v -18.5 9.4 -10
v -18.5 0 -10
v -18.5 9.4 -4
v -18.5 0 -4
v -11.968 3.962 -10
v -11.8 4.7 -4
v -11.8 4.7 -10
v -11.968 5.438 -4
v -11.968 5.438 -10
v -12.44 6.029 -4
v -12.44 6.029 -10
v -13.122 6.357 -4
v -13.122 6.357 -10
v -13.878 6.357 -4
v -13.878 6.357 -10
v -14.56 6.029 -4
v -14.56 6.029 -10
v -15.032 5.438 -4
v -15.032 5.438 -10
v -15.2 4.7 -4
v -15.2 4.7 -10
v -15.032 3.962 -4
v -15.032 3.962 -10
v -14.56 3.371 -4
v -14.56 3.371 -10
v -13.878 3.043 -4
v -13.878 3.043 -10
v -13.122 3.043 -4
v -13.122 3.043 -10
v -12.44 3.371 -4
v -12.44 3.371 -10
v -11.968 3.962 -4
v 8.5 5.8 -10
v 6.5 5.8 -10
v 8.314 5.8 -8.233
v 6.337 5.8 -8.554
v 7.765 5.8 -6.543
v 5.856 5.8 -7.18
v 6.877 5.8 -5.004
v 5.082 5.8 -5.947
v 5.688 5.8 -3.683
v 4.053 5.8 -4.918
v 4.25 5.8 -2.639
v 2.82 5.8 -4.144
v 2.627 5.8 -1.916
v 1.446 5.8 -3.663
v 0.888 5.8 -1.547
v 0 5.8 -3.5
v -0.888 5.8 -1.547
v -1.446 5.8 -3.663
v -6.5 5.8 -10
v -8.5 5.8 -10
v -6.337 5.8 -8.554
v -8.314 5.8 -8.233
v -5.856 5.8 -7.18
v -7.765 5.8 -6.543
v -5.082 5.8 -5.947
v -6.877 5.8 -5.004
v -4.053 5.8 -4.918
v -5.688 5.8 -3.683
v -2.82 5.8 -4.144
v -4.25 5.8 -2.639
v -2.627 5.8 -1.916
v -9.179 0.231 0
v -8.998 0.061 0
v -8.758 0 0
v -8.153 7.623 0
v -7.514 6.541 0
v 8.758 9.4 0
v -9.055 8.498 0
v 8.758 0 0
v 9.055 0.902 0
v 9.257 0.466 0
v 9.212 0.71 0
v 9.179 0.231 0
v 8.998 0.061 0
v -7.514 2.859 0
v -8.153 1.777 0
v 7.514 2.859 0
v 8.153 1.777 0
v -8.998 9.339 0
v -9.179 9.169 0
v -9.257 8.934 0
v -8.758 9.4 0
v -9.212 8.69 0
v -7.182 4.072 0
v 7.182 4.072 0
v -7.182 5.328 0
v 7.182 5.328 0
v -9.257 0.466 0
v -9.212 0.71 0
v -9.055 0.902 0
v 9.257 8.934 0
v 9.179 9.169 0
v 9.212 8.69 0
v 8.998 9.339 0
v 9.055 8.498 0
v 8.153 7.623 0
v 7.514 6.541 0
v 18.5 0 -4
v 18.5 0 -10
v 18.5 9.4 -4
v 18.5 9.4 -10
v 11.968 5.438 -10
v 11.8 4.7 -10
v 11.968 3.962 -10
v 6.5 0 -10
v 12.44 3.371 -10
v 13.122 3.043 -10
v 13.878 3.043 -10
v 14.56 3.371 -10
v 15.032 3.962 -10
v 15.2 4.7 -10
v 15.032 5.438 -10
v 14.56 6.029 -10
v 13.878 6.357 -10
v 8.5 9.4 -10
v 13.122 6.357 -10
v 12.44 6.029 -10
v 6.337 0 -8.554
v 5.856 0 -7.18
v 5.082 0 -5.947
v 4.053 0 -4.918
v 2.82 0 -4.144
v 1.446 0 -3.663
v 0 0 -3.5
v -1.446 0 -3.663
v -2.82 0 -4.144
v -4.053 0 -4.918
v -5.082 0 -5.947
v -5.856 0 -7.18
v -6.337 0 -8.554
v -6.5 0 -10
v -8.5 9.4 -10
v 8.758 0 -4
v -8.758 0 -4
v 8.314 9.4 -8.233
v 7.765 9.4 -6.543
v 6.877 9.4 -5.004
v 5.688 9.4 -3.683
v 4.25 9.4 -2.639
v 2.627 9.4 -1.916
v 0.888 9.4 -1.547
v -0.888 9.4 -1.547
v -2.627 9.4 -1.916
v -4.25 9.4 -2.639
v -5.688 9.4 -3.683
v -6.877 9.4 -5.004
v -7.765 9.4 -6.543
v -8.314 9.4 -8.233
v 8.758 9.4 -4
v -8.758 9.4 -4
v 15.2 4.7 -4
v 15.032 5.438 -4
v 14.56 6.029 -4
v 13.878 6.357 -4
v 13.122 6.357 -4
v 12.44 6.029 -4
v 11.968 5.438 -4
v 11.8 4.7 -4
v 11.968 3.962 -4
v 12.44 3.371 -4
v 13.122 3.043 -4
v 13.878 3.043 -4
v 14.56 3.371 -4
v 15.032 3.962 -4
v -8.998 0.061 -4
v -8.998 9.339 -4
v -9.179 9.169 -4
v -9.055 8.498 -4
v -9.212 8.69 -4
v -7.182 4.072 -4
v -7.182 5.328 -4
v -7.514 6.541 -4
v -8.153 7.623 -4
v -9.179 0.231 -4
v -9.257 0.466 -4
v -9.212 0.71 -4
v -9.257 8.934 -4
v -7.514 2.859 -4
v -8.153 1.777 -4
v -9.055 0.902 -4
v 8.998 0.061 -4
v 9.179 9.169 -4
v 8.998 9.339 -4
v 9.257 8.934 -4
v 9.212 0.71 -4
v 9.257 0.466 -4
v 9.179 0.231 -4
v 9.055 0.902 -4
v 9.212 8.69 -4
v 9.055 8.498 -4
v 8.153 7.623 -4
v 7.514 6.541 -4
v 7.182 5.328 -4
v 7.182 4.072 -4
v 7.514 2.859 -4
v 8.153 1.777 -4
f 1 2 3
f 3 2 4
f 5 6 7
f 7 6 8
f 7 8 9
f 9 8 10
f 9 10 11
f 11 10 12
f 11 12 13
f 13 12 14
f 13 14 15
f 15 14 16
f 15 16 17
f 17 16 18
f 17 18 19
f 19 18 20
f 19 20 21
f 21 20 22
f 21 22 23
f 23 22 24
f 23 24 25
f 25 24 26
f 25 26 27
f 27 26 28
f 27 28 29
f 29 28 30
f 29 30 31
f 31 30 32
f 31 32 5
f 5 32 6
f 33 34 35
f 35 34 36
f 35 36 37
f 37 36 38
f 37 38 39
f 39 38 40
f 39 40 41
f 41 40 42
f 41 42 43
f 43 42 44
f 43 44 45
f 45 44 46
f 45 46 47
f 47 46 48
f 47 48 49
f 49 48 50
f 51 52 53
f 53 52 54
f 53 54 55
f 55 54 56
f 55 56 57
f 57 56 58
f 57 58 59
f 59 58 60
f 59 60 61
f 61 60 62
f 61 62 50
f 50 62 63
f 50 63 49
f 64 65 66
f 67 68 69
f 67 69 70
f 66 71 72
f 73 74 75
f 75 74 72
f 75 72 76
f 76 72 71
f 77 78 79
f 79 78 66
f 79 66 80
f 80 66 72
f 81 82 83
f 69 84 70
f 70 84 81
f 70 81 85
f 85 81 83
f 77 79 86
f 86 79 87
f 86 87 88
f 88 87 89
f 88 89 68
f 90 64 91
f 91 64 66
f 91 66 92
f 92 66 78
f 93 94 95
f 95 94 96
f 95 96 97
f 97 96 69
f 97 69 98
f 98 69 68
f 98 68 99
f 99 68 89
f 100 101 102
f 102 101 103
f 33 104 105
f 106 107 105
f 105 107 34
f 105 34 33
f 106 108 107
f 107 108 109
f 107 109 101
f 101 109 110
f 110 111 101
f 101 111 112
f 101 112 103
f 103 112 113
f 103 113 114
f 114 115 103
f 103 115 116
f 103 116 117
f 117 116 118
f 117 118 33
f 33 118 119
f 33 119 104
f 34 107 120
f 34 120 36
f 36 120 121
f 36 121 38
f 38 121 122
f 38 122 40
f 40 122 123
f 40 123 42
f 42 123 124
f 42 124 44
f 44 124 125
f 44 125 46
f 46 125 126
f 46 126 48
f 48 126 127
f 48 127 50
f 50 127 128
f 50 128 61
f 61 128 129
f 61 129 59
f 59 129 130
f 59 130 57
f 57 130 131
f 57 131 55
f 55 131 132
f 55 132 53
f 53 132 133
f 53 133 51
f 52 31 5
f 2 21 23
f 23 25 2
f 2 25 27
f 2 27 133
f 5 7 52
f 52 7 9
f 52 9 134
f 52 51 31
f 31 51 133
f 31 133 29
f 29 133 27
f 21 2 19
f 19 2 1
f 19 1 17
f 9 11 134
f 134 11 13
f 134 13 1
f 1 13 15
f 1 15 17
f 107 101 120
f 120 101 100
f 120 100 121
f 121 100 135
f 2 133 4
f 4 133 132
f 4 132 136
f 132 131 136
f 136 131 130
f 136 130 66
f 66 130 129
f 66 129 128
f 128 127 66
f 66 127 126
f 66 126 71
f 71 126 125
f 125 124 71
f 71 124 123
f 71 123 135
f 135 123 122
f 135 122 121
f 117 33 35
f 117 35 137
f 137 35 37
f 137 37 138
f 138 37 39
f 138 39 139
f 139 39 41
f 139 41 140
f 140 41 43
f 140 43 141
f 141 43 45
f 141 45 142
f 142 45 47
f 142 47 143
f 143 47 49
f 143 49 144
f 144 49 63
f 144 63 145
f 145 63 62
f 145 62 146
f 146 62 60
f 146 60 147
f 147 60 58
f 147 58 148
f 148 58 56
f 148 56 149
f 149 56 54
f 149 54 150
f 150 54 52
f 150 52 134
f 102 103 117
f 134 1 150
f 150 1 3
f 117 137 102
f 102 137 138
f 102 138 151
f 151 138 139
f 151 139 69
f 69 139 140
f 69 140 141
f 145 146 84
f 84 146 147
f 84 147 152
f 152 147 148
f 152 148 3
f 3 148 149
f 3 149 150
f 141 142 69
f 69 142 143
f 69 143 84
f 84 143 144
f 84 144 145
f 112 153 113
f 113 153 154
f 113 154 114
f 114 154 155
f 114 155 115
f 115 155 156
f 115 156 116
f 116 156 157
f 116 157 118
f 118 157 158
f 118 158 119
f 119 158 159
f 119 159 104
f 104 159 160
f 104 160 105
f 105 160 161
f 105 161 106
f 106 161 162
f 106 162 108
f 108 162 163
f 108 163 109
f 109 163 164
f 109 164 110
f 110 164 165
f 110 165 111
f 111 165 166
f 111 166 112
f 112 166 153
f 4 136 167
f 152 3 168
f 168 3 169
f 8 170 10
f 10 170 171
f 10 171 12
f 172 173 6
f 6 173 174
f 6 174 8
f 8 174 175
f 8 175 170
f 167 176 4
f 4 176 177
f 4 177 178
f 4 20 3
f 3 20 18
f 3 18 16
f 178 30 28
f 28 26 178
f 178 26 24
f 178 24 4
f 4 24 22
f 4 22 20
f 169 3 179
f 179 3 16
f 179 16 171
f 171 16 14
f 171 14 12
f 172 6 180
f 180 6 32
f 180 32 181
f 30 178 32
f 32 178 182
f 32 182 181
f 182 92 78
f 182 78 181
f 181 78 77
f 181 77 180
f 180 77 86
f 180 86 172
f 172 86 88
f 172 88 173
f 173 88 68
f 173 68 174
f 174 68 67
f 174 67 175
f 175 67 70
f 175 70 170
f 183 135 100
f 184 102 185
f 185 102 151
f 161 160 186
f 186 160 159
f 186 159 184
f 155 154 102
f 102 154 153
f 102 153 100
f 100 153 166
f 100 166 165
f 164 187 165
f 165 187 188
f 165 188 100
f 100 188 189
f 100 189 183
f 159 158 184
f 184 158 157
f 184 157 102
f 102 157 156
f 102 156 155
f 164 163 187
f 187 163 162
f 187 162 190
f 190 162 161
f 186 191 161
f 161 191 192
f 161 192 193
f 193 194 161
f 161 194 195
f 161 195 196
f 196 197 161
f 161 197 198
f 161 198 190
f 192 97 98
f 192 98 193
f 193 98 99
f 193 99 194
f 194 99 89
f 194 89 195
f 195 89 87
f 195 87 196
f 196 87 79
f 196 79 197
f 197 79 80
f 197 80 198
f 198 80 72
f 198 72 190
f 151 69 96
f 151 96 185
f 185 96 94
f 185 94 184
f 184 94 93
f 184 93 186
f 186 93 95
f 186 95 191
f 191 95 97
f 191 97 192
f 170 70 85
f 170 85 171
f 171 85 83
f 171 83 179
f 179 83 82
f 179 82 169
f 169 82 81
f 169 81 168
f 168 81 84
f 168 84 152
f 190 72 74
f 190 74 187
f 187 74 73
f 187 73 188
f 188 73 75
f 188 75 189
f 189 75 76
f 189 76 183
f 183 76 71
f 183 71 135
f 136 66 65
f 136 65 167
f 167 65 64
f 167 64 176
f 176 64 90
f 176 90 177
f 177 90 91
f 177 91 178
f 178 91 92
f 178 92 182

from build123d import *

# Parameters (mm, degrees)
BOSS_EXTRUDE1_DEPTH  = 5.8
BOSS_EXTRUDE2_DEPTH  = 3.6
M3_CLEARANCE_HOLE1_D = 3.4
CUT_EXTRUDE1_DEPTH   = 4
FILLET1_R            = 0.5


with BuildPart() as part:
    # Sketch1 → Boss-Extrude1 (new body)
    with BuildSketch(Plane(origin=(0, 0, 0), x_dir=(1, 0, 0), z_dir=(0, 1, 0))):
        with BuildLine():
            Line((-18.5, 0), (18.5, 0))
            Line((18.5, 0), (18.5, 10))
            Line((18.5, 10), (6.5, 10))
            ThreePointArc((6.5, 10), (0, 3.5), (-6.5, 10))
            Line((-6.5, 10), (-18.5, 10))
            Line((-18.5, 10), (-18.5, 0))
        make_face()
    extrude(amount=BOSS_EXTRUDE1_DEPTH)

    # Sketch7 → Boss-Extrude2 (add)
    with BuildSketch(Plane(origin=(0, 5.8, 0), x_dir=(1, 0, 0), z_dir=(0, 1, 0))):
        with BuildLine():
            Line((-18.5, 10), (-18.5, 0))
            Line((-18.5, 0), (18.5, 0))
            Line((18.5, 0), (18.5, 10))
            Line((18.5, 10), (8.5, 10))
            ThreePointArc((8.5, 10), (0, 1.5), (-8.5, 10))
            Line((-8.5, 10), (-18.5, 10))
        make_face()
    extrude(amount=BOSS_EXTRUDE2_DEPTH)

    # M3 Clearance Hole1 (through all)
    with Locations(Plane.XY):
        with Locations((-13.5, 4.7), (13.5, 4.7)):
            Hole(M3_CLEARANCE_HOLE1_D / 2)

    # Sketch5 → Cut-Extrude1 (cut)
    with BuildSketch(Plane.XY):
        with BuildLine():
            Line((-11.395542808, 9.4), (-18.5, 9.4))
            Line((-18.5, 9.4), (-18.5, 0))
            Line((-18.5, 0), (-11.395542808, 0))
            ThreePointArc((-11.395542808, 0), (-7.140159789, 4.7), (-11.395542808, 9.4))
        make_face()
        with BuildLine():
            Line((18.5, 0), (11.395542808, 0))
            ThreePointArc((11.395542808, 0), (7.140159789, 4.7), (11.395542808, 9.4))
            Line((11.395542808, 9.4), (18.5, 9.4))
            Line((18.5, 9.4), (18.5, 0))
        make_face()
    extrude(amount=-CUT_EXTRUDE1_DEPTH, mode=Mode.SUBTRACT)

    # Fillet1
    fillet1_edges = [part.edges().sort_by_distance(p)[0] for p in [
        (-11.395542808, 9.4, -2),
        (-11.395542808, 0, -2),
        (11.395542808, 0, -2),
        (11.395542808, 9.4, -2),
    ]]
    fillet(fillet1_edges, radius=FILLET1_R)


solid = part.part
